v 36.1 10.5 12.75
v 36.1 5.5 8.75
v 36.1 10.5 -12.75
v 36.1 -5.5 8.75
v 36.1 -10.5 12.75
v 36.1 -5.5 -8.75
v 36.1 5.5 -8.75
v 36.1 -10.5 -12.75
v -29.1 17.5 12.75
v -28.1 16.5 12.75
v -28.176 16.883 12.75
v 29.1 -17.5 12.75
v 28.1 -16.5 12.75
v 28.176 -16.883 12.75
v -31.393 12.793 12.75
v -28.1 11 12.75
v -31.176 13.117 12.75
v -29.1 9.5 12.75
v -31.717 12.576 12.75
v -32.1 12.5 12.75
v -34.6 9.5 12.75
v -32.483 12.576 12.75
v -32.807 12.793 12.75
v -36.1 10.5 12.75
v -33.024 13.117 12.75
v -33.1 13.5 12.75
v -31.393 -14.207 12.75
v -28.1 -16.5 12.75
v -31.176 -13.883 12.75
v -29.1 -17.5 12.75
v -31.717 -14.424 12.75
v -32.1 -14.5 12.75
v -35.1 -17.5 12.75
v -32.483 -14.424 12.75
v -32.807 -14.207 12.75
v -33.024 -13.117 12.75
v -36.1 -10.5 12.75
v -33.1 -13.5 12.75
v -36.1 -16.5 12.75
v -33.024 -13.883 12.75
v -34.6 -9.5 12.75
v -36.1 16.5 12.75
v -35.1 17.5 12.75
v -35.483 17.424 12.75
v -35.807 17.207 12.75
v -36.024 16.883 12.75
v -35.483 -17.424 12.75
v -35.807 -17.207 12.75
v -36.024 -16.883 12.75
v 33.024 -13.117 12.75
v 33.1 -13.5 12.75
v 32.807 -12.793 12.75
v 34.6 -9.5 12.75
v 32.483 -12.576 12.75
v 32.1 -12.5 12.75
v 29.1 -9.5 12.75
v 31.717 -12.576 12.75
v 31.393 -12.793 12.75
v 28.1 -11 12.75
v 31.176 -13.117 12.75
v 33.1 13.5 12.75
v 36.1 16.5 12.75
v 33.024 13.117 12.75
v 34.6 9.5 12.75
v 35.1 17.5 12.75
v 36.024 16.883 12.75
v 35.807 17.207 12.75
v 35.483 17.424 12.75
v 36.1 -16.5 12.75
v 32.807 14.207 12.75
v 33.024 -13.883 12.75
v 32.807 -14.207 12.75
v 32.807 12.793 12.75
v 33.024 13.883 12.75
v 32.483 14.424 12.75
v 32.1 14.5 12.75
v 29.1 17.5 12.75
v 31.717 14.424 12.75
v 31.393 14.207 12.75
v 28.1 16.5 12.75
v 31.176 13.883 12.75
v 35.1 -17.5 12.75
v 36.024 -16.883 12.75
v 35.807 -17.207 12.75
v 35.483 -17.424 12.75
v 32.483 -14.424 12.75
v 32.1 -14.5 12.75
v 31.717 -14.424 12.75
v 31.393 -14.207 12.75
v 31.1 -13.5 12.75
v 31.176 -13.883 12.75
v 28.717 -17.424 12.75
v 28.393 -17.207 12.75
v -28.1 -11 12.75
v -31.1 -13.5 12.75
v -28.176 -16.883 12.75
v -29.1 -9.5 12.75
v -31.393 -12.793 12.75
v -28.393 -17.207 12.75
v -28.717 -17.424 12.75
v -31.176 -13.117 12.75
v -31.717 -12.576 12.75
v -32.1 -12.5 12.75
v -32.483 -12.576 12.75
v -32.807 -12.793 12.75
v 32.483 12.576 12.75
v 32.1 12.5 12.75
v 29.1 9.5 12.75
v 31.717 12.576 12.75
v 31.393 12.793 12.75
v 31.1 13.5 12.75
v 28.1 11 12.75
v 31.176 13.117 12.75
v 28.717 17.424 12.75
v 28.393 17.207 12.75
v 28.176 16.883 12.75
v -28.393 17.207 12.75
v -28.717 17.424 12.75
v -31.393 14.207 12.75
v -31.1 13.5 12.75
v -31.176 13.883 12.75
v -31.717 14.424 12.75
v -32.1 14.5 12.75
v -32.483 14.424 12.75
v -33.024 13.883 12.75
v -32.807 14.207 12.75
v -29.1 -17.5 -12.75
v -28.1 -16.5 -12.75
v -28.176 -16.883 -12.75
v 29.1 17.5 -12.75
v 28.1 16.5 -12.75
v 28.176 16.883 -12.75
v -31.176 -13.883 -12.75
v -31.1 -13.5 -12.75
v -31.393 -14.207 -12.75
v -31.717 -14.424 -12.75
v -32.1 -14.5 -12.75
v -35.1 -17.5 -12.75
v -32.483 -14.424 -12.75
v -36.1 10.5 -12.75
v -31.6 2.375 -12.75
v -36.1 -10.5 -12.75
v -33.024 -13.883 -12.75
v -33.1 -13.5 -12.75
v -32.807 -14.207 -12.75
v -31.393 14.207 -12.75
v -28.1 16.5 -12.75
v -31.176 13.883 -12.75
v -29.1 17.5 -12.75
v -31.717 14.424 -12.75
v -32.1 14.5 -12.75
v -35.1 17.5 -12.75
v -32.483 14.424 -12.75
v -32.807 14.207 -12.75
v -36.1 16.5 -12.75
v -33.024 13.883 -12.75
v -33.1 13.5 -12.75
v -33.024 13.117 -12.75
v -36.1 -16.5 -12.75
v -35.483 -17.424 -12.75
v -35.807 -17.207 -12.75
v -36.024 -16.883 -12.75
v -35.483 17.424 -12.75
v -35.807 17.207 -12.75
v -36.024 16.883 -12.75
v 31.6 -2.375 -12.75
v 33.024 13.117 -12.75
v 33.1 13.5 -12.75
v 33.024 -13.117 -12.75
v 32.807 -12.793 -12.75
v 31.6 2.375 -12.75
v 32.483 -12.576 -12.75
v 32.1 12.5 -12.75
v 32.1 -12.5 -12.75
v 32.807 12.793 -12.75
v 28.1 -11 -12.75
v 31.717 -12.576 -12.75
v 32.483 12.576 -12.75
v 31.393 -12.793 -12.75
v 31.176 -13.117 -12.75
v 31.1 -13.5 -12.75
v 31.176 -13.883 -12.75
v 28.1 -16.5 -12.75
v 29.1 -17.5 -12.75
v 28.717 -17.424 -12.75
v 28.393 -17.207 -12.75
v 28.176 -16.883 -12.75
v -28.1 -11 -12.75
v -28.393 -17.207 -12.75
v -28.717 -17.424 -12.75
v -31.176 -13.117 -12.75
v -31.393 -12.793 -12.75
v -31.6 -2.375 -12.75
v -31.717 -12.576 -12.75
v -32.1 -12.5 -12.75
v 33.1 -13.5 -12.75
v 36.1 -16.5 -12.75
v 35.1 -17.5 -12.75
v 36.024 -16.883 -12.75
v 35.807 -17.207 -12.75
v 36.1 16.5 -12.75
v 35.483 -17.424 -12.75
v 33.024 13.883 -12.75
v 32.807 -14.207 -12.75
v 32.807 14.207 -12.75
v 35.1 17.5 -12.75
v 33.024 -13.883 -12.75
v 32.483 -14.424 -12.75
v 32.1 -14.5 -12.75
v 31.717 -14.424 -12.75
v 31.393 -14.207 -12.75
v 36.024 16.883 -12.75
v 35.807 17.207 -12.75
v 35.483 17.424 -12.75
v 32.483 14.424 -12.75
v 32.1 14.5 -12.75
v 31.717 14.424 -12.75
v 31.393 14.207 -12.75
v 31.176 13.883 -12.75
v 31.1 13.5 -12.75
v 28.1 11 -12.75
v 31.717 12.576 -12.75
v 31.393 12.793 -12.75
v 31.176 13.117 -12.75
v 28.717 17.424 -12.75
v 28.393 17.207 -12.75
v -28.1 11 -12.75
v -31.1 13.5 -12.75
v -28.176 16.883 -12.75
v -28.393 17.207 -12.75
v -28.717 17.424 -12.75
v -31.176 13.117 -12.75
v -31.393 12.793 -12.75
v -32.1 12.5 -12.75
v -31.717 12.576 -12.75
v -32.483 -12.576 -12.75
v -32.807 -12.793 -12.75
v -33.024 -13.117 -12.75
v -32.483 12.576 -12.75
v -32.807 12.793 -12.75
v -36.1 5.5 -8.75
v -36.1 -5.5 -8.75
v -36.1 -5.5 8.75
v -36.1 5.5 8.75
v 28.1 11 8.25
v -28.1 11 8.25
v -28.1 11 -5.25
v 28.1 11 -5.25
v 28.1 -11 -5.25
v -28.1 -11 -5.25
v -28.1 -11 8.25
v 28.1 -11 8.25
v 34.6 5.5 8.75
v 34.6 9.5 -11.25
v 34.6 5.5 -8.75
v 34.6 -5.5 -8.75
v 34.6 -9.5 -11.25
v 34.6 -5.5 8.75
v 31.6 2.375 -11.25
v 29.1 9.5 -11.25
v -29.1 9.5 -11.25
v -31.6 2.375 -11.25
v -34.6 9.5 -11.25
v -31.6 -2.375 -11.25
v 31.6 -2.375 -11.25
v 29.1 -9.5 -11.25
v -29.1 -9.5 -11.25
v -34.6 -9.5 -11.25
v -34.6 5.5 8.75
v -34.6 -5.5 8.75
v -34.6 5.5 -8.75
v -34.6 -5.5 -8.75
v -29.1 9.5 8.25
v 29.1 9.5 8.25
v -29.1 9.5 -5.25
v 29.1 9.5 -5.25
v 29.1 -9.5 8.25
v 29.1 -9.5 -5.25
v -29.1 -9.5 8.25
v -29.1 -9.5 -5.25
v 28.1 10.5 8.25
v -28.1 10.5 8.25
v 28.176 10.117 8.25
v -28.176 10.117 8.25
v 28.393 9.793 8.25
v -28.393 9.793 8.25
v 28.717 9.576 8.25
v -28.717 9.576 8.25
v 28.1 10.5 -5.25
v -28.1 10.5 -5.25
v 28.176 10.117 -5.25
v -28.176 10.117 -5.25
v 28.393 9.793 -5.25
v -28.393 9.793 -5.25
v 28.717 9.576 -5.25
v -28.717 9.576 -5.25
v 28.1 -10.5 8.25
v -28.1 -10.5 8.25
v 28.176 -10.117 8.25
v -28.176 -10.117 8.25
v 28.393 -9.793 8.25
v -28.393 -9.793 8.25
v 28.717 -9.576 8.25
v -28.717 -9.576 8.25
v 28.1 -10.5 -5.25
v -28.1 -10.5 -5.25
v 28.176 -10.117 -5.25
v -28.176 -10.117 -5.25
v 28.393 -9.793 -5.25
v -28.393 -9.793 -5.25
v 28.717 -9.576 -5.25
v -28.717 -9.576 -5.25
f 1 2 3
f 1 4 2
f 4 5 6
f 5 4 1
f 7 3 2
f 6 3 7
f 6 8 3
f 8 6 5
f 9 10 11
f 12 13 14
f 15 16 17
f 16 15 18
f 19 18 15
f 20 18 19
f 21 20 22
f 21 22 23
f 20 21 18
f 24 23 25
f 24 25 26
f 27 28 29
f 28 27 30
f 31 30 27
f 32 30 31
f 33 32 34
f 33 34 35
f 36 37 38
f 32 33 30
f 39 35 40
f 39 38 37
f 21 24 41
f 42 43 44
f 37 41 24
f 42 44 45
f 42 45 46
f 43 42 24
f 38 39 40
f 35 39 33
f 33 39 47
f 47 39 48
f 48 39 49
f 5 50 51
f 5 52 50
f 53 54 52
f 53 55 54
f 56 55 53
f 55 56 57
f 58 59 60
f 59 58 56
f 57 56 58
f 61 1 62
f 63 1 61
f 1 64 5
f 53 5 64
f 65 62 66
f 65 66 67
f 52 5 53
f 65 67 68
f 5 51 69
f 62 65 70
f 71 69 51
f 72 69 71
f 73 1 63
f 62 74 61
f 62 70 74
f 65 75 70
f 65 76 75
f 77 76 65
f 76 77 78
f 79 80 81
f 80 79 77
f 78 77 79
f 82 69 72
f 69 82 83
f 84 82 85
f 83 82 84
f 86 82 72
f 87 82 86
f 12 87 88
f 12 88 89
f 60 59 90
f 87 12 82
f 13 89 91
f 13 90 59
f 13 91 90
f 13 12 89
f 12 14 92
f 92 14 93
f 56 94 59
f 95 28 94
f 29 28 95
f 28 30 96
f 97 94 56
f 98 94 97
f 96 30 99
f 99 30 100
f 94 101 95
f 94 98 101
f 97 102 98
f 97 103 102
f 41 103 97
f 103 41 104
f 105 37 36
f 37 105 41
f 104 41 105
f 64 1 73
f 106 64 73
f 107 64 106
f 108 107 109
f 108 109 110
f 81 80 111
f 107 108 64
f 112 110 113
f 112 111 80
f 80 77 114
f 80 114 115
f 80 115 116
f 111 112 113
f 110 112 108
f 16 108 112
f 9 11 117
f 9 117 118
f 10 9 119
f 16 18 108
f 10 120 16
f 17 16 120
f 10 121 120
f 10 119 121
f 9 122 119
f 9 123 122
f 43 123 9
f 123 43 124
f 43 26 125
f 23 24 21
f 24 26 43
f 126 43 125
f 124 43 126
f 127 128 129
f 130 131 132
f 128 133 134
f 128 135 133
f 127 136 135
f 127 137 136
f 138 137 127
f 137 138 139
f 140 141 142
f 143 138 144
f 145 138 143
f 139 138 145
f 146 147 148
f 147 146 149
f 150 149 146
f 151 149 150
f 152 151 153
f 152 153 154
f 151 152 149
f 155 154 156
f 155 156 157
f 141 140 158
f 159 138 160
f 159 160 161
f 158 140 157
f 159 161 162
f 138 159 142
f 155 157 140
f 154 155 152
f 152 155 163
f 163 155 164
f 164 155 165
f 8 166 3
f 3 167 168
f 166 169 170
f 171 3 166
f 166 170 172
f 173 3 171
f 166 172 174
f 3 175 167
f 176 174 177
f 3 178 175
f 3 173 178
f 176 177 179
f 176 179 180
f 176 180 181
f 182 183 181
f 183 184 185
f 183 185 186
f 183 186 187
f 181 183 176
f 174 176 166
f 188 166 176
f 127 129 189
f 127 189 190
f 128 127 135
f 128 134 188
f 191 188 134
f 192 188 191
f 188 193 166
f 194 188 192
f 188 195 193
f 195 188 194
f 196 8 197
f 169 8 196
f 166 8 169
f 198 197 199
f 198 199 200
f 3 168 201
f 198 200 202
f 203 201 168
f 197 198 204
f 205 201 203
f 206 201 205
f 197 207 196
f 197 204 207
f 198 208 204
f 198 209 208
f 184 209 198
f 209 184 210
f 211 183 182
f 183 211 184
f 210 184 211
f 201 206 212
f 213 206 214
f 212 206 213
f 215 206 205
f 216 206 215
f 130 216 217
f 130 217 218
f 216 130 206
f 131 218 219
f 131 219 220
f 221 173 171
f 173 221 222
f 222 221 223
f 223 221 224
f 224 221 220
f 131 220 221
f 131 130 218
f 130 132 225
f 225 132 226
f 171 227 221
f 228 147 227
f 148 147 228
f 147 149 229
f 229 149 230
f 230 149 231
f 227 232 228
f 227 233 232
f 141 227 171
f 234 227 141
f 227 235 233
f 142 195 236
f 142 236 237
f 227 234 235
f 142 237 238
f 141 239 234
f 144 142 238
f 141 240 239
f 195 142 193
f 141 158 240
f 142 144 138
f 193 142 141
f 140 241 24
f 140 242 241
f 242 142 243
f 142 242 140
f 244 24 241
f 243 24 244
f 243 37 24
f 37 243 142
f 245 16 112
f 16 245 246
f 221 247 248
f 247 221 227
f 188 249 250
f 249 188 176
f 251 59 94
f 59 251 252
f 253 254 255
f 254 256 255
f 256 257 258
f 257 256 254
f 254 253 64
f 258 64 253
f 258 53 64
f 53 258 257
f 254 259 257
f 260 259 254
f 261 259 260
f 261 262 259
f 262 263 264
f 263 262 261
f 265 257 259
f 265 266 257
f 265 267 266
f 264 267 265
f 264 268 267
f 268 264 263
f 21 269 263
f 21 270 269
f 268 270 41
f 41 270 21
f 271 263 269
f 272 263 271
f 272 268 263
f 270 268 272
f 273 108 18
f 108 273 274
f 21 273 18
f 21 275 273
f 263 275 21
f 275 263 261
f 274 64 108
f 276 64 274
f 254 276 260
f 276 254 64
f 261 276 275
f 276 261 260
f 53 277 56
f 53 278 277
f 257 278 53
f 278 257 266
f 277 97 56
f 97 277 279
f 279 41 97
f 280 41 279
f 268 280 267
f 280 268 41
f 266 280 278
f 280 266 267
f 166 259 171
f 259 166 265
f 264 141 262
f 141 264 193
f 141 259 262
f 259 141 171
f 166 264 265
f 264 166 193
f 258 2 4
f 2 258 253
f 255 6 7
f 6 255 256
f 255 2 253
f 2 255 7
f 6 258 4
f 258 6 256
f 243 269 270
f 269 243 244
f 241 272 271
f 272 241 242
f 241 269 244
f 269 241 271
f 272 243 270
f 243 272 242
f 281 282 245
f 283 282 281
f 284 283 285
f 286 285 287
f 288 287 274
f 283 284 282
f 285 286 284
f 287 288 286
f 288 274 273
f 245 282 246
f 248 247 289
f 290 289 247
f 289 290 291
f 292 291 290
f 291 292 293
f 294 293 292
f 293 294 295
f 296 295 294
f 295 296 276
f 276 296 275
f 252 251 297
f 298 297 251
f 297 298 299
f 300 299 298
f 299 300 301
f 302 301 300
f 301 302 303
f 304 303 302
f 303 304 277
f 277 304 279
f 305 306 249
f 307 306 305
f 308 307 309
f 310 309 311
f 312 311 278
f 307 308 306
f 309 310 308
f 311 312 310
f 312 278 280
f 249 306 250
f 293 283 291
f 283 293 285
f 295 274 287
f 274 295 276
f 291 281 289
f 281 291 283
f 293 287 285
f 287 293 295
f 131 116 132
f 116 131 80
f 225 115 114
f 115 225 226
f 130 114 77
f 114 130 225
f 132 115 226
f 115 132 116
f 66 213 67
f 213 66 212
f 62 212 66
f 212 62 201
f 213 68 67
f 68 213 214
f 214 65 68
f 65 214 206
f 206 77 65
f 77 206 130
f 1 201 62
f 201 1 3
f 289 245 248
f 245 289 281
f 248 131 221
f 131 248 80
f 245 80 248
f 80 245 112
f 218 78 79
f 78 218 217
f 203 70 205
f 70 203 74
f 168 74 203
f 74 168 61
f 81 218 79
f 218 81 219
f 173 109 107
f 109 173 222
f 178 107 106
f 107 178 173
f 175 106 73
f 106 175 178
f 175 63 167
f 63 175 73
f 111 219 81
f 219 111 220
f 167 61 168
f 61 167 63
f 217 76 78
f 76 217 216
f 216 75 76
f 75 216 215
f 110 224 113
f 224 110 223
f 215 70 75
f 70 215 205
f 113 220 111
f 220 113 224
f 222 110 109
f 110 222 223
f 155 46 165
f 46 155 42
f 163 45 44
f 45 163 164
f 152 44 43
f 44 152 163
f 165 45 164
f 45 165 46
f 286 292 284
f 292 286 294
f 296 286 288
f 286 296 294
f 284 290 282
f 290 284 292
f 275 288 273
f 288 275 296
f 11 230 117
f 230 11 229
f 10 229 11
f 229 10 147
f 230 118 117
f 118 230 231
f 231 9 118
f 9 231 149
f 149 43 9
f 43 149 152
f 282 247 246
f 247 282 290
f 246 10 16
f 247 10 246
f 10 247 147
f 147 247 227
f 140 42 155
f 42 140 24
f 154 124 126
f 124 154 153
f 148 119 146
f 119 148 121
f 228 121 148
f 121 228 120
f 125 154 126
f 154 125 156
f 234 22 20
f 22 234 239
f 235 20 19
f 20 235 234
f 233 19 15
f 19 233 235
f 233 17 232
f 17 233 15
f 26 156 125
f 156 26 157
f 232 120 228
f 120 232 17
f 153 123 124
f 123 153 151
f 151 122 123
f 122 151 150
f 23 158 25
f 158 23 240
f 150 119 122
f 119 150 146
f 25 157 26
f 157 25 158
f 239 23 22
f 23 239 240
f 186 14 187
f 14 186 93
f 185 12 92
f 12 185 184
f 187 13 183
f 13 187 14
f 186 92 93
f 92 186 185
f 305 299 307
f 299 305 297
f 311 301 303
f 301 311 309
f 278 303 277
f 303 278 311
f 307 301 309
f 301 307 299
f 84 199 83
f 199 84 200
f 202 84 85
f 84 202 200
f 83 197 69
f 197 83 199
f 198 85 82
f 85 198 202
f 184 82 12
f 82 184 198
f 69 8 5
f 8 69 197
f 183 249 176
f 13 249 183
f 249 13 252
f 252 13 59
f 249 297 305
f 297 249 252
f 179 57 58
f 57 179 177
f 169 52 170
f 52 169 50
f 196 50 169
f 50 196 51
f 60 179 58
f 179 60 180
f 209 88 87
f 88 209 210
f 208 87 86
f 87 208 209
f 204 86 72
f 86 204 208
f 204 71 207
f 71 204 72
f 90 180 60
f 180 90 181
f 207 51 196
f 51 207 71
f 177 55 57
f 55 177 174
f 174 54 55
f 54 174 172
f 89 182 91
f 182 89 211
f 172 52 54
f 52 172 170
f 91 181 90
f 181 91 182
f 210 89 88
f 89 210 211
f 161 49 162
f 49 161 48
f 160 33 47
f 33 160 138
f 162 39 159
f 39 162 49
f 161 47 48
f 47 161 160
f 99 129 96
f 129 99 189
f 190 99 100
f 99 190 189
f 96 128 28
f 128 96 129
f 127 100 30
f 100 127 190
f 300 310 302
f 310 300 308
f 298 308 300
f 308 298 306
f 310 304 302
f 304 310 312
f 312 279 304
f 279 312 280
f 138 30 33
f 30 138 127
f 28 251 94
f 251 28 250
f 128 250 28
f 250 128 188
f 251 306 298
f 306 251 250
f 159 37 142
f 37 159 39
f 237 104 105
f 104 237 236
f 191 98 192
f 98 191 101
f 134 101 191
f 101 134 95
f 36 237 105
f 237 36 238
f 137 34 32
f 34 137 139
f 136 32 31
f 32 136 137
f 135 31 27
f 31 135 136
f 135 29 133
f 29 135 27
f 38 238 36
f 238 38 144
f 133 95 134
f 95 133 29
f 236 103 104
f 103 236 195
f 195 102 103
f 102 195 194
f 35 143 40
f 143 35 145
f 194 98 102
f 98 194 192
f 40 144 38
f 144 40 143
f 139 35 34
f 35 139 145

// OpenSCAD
// file: consts.scad
//    consts.scad
//    Constant values for OpenSCAD model 
//
//    Copyright (C) 2026 Clear Creek Scientific
//
//    This program is free software: you can redistribute it and/or modify
//    it under the terms of the GNU General Public License as published by
//    the Free Software Foundation, either version 3 of the License, or
//    (at your option) any later version.
//
//    This program is distributed in the hope that it will be useful,
//    but WITHOUT ANY WARRANTY; without even the implied warranty of
//    MERCHANTABILITY or FITNESS FOR A PARTICULAR PURPOSE.  See the
//    GNU General Public License for more details.
//
//    You should have received a copy of the GNU General Public License
//    along with this program.  If not, see <https://www.gnu.org/licenses/>.

WALL_WIDTH = 1.5;
TAB_WIDTH = 8;
HALF_TAB_WIDTH = 0.5 * TAB_WIDTH;
TAB_HOLE_RADIUS = 1;
TAB_CORNER_RADIUS=1;
DRAIN_HOLE_HEIGHT = 5.0;
DRAIN_HOLE_RADIUS = 2.0;
SCREW_HOLE_HEIGHT = 2.0 * WALL_WIDTH;
SCREW_HOLE_RADIUS = 1.0;
SCREW_HEAD_HEIGHT = 0.5*WALL_WIDTH;
SCREW_HEAD_RADIUS = 2.5;

BATTERY_INNER_X_DIM = 69.2;
BATTERY_INNER_Y_DIM = 19.0;
BATTERY_WALL_HEIGHT = BATTERY_INNER_Y_DIM + WALL_WIDTH + 5.0;
BATTERY_OUTER_X_DIM = BATTERY_INNER_X_DIM + 2*WALL_WIDTH;
BATTERY_OUTER_Y_DIM = BATTERY_INNER_Y_DIM + 2*WALL_WIDTH;
BATTERY_X_OFFSET = 10; 

PANEL_WALL_HEIGHT = 8;
PANEL_INNER_X_DIM = 138;
PANEL_INNER_Y_DIM = 114;
PANEL_OUTER_X_DIM = PANEL_INNER_X_DIM + 2*WALL_WIDTH;
PANEL_OUTER_Y_DIM = PANEL_INNER_Y_DIM + 2*WALL_WIDTH;
PANEL_CENTER_BOX_WIDTH = 30;

PANEL_CENTER_X_LEN = 52.5;
PANEL_CENTER_Y_LEN = 41.0;

MOUNT_INNER_X_DIM = 33.0;
MOUNT_INNER_Y_DIM = MOUNT_INNER_X_DIM;
MOUNT_WALL_HEIGHT = 36.0;
MOUNT_OUTER_X_DIM = MOUNT_INNER_X_DIM + 2*WALL_WIDTH;
MOUNT_OUTER_Y_DIM = MOUNT_INNER_Y_DIM + 2*WALL_WIDTH;

CHARGER_INNER_X_DIM = MOUNT_INNER_X_DIM;
CHARGER_INNER_Y_DIM = MOUNT_INNER_Y_DIM;
CHARGER_WALL_HEIGHT = 15.0;
CHARGER_OUTER_X_DIM = CHARGER_INNER_X_DIM + 2*WALL_WIDTH;
CHARGER_OUTER_Y_DIM = CHARGER_INNER_Y_DIM + 2*WALL_WIDTH;

HINGE_TAB_WIDTH = 15.0;
HINGE_TAB_DEPTH = 3.0;
HINGE_TAB_HEIGHT = 16.0;
HINGE_TAB_RADIUS = 3.0;

HINGE_HOLE_DEPTH = HINGE_TAB_DEPTH+0.2;
// Hinge hole needs to accept a 10/32 inch screw
HINGE_HOLE_DIAMETER = 6;
HINGE_HOLE_RADIUS = 0.5*HINGE_HOLE_DIAMETER;
HINGE_HOLE_OFFSET = HINGE_TAB_HEIGHT - (HINGE_HOLE_RADIUS+3);

HINGE_GAP = 3.1;
HINGE_SUPPORT_OVERHANG = 2.0;
// file: common.scad
//    battery_box.scad
//    OpenSCAD model for a box for a PKCELL 18650 lithium-ion battery 
//
//    Copyright (C) 2026 Clear Creek Scientific
//
//    This program is free software: you can redistribute it and/or modify
//    it under the terms of the GNU General Public License as published by
//    the Free Software Foundation, either version 3 of the License, or
//    (at your option) any later version.
//
//    This program is distributed in the hope that it will be useful,
//    but WITHOUT ANY WARRANTY; without even the implied warranty of
//    MERCHANTABILITY or FITNESS FOR A PARTICULAR PURPOSE.  See the
//    GNU General Public License for more details.
//
//    You should have received a copy of the GNU General Public License
//    along with this program.  If not, see <https://www.gnu.org/licenses/>.

include <consts.scad>
use <MCAD/boxes.scad>
use <MCAD/regular_shapes.scad>

module tab(height) {
    difference() {
        roundedBox(size=[TAB_WIDTH,TAB_WIDTH,height],radius=TAB_CORNER_RADIUS,sidesonly=true);
        translate([0,0,-height]) {
            cylinder(2*height,TAB_HOLE_RADIUS,TAB_HOLE_RADIUS);
        }
    }
}

module drain_hole() {
    //cylinder(h=DRAIN_HOLE_HEIGHT,r=DRAIN_HOLE_RADIUS,center=true);
    cube([DRAIN_HOLE_HEIGHT,DRAIN_HOLE_HEIGHT,DRAIN_HOLE_HEIGHT],center=true);
}

module screw_hole() {
    union() {
        cylinder(h=SCREW_HOLE_HEIGHT,r=SCREW_HOLE_RADIUS,center=true);
        translate([0,0,0.5*WALL_WIDTH]) {
            cylinder(h=SCREW_HEAD_HEIGHT,r=SCREW_HEAD_RADIUS,center=true);
        }
    }
}

module hinge_tab(hole_offset) {
    rotate([90,0,0]) {
        difference() {
            roundedBox(size=[HINGE_TAB_WIDTH,HINGE_TAB_HEIGHT,HINGE_TAB_DEPTH],radius=HINGE_TAB_RADIUS,sidesonly=true);
            translate([0,hole_offset,0]) {
                cylinder(h=HINGE_HOLE_DEPTH+0.2,r=HINGE_HOLE_RADIUS,center=true);
            }
        }
    }
}

BASE_X_DIM = MOUNT_OUTER_X_DIM;
BASE_Y_DIM = MOUNT_OUTER_Y_DIM+2*(TAB_WIDTH-WALL_WIDTH);

module mount_hinge_base() {
    union () {
        // main base 
        difference() {
            roundedBox(size=[BASE_X_DIM,BASE_Y_DIM,WALL_WIDTH],radius=TAB_CORNER_RADIUS,sidesonly=true);

            // cut out screw holes
            translate([0.5*(BASE_X_DIM-TAB_WIDTH),0.5*(BASE_Y_DIM-TAB_WIDTH),0]) {
                screw_hole();
            }
            translate([-0.5*(BASE_X_DIM-TAB_WIDTH),0.5*(BASE_Y_DIM-TAB_WIDTH),0]) {
                screw_hole();
            }
            translate([0.5*(BASE_X_DIM-TAB_WIDTH),-0.5*(BASE_Y_DIM-TAB_WIDTH),0]) {
                screw_hole();
            }
            translate([-0.5* (BASE_X_DIM-TAB_WIDTH),-0.5*(BASE_Y_DIM-TAB_WIDTH),0]) {
                screw_hole();
            }
        } // difference

        // support base for hinges
        translate([0,0,0.5*HINGE_TAB_DEPTH]) {
            cube([HINGE_TAB_WIDTH+2*HINGE_SUPPORT_OVERHANG,4*HINGE_TAB_DEPTH+HINGE_GAP+2*HINGE_SUPPORT_OVERHANG,HINGE_TAB_DEPTH],center=true);
        }
    }
}
// main file
//    battery_box.scad
//    OpenSCAD model for a box for a PKCELL 18650 lithium-ion battery 
//
//    Copyright (C) 2026 Clear Creek Scientific
//
//    This program is free software: you can redistribute it and/or modify
//    it under the terms of the GNU General Public License as published by
//    the Free Software Foundation, either version 3 of the License, or
//    (at your option) any later version.
//
//    This program is distributed in the hope that it will be useful,
//    but WITHOUT ANY WARRANTY; without even the implied warranty of
//    MERCHANTABILITY or FITNESS FOR A PARTICULAR PURPOSE.  See the
//    GNU General Public License for more details.
//
//    You should have received a copy of the GNU General Public License
//    along with this program.  If not, see <https://www.gnu.org/licenses/>.

include <common.scad>

$fa=1;
$fs=0.4;


module basic_battery_box() {
    difference() {
    
        // outer box
        cube([BATTERY_OUTER_X_DIM,BATTERY_OUTER_Y_DIM,BATTERY_WALL_HEIGHT],center=true); 

        // cut out inner box
        translate([0,0,WALL_WIDTH]) {
            cube([BATTERY_INNER_X_DIM,BATTERY_INNER_Y_DIM,BATTERY_WALL_HEIGHT],center=true); 
        }
    } // difference
}

module basic_battery_box_with_cutouts() {
    difference() {
        basic_battery_box();

        // cut out middle of bottom
        cube([BATTERY_INNER_X_DIM-6,BATTERY_INNER_Y_DIM/4,2*BATTERY_WALL_HEIGHT],center=true); 
        
        // make end cutouts
        translate([0.5*(BATTERY_OUTER_X_DIM-WALL_WIDTH),0,0]) {
            cube([WALL_WIDTH+0.5,BATTERY_INNER_Y_DIM-8.0,BATTERY_WALL_HEIGHT-8.0],center=true); 
        }
        translate([-0.5*(BATTERY_OUTER_X_DIM-WALL_WIDTH),0,0]) {
            cube([WALL_WIDTH+0.5,BATTERY_INNER_Y_DIM-8.0,BATTERY_WALL_HEIGHT-8.0],center=true); 
        }
        
        // make side cutouts
        translate([0,0.5*BATTERY_INNER_Y_DIM,WALL_WIDTH]) {
            cube([BATTERY_INNER_X_DIM-10,BATTERY_INNER_Y_DIM-10.0,BATTERY_WALL_HEIGHT-12.0],center=true); 
        }
        translate([0,-0.5*BATTERY_INNER_Y_DIM,WALL_WIDTH]) {
            cube([BATTERY_INNER_X_DIM-10,BATTERY_INNER_Y_DIM-10.0,BATTERY_WALL_HEIGHT-12.0],center=true); 
        }

    } // difference
}

module battery_box() {
    union() {
        basic_battery_box_with_cutouts();
        
        // tabs
        translate([0.5*(BATTERY_OUTER_X_DIM - TAB_WIDTH),0.5*(BATTERY_INNER_Y_DIM + TAB_WIDTH),0]) {
            tab(BATTERY_WALL_HEIGHT);
        }
        translate([-0.5*(BATTERY_OUTER_X_DIM - TAB_WIDTH),0.5*(BATTERY_INNER_Y_DIM + TAB_WIDTH),0]) {
            tab(BATTERY_WALL_HEIGHT);
        }
        translate([0.5*(BATTERY_OUTER_X_DIM - TAB_WIDTH),-0.5*(BATTERY_INNER_Y_DIM + TAB_WIDTH),0]) {
            tab(BATTERY_WALL_HEIGHT);
        }
        translate([-0.5*(BATTERY_OUTER_X_DIM - TAB_WIDTH),-0.5*(BATTERY_INNER_Y_DIM + TAB_WIDTH),0]) {
            tab(BATTERY_WALL_HEIGHT);
        }
        
    }
}

battery_box();
